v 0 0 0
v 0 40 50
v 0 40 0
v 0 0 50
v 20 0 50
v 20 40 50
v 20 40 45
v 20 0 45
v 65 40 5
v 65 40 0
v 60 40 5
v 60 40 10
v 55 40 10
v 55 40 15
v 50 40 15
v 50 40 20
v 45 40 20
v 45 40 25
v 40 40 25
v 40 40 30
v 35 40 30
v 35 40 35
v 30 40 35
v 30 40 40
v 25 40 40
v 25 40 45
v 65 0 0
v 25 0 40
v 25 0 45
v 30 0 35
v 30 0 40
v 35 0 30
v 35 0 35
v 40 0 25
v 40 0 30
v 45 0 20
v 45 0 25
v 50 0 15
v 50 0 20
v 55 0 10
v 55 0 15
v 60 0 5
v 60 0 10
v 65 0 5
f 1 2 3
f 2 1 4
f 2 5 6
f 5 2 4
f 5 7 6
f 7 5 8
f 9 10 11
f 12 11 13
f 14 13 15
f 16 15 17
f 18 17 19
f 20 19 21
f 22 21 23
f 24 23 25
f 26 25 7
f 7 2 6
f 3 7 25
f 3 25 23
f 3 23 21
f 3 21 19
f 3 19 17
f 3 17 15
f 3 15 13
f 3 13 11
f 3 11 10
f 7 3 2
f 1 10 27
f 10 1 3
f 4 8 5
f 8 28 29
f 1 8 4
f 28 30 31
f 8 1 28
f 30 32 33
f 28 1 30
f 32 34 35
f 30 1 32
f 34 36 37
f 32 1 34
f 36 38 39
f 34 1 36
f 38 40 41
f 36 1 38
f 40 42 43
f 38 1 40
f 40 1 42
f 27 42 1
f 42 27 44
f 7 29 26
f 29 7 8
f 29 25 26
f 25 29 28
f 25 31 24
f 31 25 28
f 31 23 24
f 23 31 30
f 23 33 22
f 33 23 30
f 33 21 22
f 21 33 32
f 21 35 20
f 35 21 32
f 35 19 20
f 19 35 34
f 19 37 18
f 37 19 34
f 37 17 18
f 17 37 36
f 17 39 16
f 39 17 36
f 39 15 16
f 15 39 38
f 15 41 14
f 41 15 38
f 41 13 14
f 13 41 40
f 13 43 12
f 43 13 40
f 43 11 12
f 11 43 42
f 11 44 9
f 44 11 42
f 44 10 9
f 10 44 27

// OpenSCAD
steps = 100;
ancho_escalon = 5;
alto_escalon = 5;

puntos = [
	for (a = [0 : 1: steps ]) [ 20 + a*ancho_escalon, 40, 50 - a*alto_escalon ]
];

union() {
for(x = puntos) cube(x);
}
